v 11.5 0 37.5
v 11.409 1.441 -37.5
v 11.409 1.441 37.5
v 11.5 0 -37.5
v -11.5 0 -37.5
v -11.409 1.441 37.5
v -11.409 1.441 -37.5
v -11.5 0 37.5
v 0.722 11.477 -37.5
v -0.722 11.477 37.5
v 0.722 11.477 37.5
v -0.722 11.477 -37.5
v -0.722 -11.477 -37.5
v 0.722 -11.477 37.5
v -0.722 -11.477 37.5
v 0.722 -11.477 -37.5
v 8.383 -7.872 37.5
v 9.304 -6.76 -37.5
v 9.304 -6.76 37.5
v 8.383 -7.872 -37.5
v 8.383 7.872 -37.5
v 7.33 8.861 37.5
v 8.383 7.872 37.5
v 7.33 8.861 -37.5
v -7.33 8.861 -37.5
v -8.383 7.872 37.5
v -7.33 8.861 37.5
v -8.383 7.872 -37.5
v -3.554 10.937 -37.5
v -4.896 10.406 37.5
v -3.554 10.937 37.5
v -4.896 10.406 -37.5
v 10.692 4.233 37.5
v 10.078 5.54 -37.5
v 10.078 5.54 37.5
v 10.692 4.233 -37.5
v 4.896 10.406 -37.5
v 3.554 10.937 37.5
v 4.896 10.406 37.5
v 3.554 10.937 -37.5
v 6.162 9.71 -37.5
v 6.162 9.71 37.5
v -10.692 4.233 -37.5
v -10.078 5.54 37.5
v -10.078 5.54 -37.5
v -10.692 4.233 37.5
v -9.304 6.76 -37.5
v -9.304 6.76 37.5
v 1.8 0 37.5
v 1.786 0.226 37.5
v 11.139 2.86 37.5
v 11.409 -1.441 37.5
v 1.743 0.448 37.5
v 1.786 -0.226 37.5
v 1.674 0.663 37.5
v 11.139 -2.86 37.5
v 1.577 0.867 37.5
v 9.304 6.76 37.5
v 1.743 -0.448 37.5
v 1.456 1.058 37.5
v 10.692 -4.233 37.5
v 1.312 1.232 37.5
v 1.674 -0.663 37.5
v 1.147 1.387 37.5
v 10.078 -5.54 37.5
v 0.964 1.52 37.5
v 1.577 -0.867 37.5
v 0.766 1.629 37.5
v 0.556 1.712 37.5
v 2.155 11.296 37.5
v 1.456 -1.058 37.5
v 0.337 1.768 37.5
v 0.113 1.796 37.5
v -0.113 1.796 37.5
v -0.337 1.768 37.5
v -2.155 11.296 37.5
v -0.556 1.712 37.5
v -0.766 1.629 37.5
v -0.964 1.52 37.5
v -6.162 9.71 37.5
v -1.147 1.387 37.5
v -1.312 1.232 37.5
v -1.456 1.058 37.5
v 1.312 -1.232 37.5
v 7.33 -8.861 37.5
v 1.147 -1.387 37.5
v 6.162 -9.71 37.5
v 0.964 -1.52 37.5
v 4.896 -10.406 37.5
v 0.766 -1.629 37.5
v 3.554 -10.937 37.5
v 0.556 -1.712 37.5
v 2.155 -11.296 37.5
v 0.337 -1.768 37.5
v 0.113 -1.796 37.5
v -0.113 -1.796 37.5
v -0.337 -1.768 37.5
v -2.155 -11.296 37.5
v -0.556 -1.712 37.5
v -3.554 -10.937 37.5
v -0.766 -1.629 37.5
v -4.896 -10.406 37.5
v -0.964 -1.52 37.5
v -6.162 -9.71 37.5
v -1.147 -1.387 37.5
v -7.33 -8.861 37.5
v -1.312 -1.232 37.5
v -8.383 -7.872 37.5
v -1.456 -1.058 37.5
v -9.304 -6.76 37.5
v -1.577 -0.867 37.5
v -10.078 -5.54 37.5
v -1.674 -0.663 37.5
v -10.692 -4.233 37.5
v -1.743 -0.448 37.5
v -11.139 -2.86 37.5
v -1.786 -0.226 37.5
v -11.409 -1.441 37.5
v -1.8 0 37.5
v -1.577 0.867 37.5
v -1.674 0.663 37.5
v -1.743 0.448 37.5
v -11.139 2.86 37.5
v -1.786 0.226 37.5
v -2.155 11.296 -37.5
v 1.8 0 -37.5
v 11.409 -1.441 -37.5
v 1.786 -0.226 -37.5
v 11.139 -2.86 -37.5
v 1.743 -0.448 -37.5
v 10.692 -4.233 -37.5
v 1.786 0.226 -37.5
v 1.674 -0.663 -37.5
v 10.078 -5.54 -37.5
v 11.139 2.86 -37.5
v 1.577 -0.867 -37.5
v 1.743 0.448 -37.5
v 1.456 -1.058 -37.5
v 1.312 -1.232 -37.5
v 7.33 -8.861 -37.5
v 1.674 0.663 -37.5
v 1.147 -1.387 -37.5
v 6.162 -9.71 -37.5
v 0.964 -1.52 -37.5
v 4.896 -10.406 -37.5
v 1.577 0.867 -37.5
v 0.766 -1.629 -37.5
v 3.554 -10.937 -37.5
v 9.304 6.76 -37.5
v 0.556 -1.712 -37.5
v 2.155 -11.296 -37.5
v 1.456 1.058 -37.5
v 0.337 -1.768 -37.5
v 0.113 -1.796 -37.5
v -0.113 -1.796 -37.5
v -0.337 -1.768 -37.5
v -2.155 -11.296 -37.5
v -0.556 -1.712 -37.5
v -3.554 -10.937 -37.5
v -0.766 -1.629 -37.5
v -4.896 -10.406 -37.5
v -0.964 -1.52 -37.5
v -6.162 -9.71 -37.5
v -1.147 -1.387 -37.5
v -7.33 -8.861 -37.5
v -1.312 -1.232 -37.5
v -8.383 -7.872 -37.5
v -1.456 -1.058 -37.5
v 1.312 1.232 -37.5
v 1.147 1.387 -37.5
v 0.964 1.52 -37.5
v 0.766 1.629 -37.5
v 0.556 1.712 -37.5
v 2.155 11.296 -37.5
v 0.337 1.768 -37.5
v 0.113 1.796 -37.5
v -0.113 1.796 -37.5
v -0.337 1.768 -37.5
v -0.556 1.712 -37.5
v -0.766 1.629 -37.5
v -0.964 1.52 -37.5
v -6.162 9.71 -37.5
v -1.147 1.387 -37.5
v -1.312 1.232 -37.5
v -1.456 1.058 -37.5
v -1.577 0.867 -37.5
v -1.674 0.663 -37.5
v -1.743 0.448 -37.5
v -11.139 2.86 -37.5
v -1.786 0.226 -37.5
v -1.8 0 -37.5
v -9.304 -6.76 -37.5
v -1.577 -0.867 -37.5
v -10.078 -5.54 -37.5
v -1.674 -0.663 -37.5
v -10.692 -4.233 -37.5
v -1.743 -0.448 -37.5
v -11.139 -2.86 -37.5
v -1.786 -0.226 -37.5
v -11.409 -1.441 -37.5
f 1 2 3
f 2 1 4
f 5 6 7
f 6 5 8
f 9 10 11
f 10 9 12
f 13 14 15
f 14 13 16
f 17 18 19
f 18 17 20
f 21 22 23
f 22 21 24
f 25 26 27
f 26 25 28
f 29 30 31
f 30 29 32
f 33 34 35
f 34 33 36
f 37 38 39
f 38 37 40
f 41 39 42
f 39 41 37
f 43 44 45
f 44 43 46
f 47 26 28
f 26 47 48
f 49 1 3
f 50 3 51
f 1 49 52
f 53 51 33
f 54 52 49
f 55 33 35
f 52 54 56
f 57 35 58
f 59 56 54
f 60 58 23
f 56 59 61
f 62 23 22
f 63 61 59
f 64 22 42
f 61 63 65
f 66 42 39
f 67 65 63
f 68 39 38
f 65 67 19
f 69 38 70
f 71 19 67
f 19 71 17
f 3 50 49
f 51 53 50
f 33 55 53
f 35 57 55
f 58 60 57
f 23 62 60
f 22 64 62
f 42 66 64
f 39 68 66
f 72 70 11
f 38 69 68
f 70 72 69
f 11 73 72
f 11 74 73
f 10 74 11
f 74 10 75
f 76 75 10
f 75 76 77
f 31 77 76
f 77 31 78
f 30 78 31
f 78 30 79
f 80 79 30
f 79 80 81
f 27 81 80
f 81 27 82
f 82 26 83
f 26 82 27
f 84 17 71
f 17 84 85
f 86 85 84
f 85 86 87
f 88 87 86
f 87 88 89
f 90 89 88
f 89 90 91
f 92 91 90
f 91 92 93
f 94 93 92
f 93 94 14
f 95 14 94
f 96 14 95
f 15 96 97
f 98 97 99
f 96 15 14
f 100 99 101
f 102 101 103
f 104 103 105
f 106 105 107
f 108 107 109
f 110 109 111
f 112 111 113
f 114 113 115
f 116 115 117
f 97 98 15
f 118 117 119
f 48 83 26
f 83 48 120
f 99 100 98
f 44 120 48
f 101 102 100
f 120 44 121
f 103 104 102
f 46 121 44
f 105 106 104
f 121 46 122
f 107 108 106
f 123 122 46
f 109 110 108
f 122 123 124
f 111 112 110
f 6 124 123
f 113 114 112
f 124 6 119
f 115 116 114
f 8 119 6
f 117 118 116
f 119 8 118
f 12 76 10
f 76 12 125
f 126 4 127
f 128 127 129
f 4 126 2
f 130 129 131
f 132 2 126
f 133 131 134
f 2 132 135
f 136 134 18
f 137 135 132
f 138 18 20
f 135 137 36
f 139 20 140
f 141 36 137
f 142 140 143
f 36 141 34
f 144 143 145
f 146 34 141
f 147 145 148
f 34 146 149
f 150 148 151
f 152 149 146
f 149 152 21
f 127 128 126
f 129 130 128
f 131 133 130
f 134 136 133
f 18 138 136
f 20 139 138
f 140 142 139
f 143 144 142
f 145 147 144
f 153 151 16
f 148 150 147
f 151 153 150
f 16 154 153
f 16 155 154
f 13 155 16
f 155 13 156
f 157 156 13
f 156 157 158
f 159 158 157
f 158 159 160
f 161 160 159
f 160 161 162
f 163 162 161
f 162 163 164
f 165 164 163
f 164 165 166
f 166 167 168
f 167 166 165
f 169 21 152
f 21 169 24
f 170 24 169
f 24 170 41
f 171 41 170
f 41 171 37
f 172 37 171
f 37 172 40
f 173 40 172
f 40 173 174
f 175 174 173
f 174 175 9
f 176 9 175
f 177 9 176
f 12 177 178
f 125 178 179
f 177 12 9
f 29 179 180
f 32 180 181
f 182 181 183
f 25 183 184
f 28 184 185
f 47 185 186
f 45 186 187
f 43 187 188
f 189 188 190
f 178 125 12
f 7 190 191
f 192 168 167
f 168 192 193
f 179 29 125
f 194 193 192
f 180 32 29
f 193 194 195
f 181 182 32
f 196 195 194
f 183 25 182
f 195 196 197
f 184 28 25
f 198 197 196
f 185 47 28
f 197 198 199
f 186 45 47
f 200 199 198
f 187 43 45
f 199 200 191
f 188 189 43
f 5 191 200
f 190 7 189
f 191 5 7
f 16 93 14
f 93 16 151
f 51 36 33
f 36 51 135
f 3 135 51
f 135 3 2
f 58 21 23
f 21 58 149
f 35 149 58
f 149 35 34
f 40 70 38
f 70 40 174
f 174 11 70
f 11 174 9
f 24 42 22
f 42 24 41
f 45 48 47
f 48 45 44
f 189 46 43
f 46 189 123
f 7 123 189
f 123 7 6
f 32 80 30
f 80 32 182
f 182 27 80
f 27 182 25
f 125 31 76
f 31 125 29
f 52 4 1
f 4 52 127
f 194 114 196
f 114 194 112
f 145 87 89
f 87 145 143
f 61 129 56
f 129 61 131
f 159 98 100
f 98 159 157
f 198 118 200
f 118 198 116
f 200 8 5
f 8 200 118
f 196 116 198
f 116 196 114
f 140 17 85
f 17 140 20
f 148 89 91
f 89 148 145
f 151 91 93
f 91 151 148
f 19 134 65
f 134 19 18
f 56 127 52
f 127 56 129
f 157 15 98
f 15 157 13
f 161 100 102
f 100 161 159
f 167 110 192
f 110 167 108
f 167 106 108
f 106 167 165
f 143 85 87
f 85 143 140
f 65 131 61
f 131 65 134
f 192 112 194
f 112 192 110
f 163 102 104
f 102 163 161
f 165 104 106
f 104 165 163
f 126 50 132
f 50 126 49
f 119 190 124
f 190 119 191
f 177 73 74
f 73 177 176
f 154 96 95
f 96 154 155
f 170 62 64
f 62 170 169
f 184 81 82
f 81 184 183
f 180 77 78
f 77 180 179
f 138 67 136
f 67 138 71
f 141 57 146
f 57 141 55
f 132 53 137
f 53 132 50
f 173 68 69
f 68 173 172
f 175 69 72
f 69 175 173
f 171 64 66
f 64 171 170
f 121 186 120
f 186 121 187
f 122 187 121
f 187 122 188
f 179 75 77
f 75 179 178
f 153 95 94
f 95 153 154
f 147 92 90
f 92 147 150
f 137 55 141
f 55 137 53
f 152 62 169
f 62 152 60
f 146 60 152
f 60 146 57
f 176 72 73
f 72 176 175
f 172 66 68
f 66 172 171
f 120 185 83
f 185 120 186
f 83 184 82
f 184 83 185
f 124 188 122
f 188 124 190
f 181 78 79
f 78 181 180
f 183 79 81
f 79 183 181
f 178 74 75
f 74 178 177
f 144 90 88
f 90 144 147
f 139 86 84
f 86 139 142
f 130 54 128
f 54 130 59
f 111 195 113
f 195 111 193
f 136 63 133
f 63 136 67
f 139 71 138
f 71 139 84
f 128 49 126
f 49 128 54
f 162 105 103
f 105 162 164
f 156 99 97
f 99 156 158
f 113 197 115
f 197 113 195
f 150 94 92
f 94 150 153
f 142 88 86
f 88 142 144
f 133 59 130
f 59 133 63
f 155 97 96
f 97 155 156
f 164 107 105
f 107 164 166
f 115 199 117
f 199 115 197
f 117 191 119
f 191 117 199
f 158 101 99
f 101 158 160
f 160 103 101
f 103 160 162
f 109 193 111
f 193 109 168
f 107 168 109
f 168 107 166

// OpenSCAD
$fn = 50;


difference() {
	union() {
		translate(v = [0, 0, -37.5000000000]) {
			cylinder(h = 75, r = 11.5000000000);
		}
	}
	union() {
		translate(v = [0, 0, -100.0000000000]) {
			cylinder(h = 200, r = 1.8000000000);
		}
	}
}
